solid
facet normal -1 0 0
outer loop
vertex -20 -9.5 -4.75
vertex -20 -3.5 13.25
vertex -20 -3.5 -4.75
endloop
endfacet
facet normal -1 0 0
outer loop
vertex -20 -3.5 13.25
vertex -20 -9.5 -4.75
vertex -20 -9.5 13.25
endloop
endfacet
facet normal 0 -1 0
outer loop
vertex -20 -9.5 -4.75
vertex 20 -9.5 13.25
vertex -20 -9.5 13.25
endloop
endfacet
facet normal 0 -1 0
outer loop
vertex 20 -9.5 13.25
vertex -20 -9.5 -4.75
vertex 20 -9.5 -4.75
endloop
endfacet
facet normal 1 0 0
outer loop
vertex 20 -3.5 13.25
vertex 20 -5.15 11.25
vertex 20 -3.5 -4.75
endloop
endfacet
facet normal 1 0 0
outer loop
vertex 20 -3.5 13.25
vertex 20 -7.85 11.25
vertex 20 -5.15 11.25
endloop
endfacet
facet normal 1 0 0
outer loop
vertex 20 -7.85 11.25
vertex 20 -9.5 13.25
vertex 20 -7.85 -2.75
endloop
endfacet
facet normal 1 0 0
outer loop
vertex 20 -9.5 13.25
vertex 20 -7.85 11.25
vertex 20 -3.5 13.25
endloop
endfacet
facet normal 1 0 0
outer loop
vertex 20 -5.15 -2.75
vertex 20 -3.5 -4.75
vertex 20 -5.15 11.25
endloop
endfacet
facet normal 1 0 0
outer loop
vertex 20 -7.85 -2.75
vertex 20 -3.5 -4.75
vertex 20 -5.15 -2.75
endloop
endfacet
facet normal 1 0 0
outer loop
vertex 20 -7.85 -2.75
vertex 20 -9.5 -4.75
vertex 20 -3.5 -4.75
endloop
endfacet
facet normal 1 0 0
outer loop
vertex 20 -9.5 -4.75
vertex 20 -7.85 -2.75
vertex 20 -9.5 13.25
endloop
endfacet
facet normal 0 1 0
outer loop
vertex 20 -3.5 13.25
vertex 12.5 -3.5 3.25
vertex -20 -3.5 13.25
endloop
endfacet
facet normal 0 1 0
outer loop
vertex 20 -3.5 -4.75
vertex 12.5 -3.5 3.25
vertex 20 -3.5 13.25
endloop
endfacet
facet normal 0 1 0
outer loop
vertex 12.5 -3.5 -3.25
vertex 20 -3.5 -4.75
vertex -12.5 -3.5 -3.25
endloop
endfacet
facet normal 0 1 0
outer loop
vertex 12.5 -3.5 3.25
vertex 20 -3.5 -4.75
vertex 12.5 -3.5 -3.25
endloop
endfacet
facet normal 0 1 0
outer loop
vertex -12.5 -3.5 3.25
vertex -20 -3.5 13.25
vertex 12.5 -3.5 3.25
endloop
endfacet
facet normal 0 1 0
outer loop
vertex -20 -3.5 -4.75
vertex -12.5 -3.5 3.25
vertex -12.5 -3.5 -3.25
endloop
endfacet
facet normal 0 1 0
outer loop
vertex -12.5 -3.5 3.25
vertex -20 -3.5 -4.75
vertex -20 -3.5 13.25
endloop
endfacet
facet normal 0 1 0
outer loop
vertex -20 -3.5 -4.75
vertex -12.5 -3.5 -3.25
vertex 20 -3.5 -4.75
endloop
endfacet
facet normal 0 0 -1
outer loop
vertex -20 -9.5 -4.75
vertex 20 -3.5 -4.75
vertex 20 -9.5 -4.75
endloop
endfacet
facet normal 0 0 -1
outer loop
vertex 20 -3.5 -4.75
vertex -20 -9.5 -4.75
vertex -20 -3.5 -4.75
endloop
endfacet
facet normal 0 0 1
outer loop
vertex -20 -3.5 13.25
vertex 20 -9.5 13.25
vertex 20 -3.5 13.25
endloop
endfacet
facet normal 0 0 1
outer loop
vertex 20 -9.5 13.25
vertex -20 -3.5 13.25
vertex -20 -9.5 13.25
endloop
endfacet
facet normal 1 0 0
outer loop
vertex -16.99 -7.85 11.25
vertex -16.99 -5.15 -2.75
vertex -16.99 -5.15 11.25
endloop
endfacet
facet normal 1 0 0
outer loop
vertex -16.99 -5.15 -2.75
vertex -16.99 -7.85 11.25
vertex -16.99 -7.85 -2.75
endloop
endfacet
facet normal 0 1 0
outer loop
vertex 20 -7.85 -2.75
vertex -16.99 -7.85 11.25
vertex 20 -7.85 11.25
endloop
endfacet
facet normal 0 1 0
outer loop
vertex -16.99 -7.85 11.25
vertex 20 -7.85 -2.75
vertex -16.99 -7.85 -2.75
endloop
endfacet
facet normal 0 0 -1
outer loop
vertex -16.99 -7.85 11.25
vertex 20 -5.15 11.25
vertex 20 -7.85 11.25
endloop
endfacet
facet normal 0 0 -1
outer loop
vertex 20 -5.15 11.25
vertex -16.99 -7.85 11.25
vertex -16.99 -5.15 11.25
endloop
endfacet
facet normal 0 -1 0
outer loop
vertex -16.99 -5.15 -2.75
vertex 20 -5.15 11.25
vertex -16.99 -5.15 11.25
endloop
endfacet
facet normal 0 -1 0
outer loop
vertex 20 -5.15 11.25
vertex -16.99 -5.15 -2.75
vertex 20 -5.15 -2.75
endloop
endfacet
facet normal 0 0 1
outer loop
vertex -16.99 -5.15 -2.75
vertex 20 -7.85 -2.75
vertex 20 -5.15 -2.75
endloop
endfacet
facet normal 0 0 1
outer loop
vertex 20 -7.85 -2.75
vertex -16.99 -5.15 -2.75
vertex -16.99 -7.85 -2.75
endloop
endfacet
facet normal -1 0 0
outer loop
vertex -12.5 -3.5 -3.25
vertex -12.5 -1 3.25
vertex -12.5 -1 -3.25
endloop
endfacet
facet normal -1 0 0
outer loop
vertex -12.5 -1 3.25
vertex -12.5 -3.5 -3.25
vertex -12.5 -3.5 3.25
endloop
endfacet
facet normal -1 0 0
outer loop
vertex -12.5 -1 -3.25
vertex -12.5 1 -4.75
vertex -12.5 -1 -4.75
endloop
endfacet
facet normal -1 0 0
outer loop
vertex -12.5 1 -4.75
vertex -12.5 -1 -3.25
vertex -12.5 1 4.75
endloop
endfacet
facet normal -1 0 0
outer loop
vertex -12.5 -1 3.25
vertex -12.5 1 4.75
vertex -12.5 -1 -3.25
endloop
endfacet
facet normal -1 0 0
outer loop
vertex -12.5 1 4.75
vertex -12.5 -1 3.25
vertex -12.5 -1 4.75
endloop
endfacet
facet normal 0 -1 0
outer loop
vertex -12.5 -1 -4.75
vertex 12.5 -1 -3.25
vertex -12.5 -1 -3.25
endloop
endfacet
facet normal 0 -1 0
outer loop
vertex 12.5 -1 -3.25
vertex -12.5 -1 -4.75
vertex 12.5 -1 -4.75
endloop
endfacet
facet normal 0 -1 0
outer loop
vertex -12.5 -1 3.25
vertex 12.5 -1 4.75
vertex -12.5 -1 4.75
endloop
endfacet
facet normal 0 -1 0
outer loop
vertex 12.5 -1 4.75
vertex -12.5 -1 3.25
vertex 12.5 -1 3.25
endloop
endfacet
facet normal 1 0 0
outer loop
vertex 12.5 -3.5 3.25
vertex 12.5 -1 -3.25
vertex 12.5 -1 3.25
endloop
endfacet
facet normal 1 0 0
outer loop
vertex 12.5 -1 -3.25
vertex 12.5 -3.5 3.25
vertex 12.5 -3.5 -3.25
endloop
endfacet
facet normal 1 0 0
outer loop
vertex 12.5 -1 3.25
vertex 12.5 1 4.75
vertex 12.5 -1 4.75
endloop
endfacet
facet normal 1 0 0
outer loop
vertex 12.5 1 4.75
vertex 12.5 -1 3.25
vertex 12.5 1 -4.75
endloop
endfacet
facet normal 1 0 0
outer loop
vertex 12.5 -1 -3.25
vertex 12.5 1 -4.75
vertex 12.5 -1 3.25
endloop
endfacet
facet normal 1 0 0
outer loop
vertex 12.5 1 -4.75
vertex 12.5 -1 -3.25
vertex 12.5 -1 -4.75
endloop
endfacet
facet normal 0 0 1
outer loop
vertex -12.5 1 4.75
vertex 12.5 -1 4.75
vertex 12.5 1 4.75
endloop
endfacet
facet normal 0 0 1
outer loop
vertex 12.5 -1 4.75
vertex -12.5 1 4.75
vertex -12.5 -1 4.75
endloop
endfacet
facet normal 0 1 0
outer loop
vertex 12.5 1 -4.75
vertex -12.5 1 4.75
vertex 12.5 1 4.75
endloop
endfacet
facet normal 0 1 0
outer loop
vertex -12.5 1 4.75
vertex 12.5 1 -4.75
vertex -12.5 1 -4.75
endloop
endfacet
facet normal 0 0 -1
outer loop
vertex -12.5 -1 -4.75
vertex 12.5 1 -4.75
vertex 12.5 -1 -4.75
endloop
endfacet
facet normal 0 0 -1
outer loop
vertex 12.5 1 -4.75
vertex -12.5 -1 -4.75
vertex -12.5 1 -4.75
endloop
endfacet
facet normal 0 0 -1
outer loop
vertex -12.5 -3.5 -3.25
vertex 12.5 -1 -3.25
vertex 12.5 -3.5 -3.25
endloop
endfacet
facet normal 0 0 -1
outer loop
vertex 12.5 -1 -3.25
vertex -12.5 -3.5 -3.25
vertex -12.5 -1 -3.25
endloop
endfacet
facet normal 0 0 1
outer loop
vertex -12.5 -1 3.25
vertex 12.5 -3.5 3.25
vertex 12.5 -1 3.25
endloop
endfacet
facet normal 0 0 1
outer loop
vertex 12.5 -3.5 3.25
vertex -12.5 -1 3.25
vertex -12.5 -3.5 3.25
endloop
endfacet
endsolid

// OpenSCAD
$fa=5; $fs=0.1;


rotate([90,0,0]){

cube([25, 9.5, 2], center=true);
translate([0, 0, 2]) cube([25, 6.5, 3], center=true);
translate([0, 9-(9.5/2), 6.5]) 
    difference(){
        cube([40, 18, 6], center=true);
        translate([1.51, 0, 0]) cube([37, 14, 2.7], center=true);
    }
    
}
